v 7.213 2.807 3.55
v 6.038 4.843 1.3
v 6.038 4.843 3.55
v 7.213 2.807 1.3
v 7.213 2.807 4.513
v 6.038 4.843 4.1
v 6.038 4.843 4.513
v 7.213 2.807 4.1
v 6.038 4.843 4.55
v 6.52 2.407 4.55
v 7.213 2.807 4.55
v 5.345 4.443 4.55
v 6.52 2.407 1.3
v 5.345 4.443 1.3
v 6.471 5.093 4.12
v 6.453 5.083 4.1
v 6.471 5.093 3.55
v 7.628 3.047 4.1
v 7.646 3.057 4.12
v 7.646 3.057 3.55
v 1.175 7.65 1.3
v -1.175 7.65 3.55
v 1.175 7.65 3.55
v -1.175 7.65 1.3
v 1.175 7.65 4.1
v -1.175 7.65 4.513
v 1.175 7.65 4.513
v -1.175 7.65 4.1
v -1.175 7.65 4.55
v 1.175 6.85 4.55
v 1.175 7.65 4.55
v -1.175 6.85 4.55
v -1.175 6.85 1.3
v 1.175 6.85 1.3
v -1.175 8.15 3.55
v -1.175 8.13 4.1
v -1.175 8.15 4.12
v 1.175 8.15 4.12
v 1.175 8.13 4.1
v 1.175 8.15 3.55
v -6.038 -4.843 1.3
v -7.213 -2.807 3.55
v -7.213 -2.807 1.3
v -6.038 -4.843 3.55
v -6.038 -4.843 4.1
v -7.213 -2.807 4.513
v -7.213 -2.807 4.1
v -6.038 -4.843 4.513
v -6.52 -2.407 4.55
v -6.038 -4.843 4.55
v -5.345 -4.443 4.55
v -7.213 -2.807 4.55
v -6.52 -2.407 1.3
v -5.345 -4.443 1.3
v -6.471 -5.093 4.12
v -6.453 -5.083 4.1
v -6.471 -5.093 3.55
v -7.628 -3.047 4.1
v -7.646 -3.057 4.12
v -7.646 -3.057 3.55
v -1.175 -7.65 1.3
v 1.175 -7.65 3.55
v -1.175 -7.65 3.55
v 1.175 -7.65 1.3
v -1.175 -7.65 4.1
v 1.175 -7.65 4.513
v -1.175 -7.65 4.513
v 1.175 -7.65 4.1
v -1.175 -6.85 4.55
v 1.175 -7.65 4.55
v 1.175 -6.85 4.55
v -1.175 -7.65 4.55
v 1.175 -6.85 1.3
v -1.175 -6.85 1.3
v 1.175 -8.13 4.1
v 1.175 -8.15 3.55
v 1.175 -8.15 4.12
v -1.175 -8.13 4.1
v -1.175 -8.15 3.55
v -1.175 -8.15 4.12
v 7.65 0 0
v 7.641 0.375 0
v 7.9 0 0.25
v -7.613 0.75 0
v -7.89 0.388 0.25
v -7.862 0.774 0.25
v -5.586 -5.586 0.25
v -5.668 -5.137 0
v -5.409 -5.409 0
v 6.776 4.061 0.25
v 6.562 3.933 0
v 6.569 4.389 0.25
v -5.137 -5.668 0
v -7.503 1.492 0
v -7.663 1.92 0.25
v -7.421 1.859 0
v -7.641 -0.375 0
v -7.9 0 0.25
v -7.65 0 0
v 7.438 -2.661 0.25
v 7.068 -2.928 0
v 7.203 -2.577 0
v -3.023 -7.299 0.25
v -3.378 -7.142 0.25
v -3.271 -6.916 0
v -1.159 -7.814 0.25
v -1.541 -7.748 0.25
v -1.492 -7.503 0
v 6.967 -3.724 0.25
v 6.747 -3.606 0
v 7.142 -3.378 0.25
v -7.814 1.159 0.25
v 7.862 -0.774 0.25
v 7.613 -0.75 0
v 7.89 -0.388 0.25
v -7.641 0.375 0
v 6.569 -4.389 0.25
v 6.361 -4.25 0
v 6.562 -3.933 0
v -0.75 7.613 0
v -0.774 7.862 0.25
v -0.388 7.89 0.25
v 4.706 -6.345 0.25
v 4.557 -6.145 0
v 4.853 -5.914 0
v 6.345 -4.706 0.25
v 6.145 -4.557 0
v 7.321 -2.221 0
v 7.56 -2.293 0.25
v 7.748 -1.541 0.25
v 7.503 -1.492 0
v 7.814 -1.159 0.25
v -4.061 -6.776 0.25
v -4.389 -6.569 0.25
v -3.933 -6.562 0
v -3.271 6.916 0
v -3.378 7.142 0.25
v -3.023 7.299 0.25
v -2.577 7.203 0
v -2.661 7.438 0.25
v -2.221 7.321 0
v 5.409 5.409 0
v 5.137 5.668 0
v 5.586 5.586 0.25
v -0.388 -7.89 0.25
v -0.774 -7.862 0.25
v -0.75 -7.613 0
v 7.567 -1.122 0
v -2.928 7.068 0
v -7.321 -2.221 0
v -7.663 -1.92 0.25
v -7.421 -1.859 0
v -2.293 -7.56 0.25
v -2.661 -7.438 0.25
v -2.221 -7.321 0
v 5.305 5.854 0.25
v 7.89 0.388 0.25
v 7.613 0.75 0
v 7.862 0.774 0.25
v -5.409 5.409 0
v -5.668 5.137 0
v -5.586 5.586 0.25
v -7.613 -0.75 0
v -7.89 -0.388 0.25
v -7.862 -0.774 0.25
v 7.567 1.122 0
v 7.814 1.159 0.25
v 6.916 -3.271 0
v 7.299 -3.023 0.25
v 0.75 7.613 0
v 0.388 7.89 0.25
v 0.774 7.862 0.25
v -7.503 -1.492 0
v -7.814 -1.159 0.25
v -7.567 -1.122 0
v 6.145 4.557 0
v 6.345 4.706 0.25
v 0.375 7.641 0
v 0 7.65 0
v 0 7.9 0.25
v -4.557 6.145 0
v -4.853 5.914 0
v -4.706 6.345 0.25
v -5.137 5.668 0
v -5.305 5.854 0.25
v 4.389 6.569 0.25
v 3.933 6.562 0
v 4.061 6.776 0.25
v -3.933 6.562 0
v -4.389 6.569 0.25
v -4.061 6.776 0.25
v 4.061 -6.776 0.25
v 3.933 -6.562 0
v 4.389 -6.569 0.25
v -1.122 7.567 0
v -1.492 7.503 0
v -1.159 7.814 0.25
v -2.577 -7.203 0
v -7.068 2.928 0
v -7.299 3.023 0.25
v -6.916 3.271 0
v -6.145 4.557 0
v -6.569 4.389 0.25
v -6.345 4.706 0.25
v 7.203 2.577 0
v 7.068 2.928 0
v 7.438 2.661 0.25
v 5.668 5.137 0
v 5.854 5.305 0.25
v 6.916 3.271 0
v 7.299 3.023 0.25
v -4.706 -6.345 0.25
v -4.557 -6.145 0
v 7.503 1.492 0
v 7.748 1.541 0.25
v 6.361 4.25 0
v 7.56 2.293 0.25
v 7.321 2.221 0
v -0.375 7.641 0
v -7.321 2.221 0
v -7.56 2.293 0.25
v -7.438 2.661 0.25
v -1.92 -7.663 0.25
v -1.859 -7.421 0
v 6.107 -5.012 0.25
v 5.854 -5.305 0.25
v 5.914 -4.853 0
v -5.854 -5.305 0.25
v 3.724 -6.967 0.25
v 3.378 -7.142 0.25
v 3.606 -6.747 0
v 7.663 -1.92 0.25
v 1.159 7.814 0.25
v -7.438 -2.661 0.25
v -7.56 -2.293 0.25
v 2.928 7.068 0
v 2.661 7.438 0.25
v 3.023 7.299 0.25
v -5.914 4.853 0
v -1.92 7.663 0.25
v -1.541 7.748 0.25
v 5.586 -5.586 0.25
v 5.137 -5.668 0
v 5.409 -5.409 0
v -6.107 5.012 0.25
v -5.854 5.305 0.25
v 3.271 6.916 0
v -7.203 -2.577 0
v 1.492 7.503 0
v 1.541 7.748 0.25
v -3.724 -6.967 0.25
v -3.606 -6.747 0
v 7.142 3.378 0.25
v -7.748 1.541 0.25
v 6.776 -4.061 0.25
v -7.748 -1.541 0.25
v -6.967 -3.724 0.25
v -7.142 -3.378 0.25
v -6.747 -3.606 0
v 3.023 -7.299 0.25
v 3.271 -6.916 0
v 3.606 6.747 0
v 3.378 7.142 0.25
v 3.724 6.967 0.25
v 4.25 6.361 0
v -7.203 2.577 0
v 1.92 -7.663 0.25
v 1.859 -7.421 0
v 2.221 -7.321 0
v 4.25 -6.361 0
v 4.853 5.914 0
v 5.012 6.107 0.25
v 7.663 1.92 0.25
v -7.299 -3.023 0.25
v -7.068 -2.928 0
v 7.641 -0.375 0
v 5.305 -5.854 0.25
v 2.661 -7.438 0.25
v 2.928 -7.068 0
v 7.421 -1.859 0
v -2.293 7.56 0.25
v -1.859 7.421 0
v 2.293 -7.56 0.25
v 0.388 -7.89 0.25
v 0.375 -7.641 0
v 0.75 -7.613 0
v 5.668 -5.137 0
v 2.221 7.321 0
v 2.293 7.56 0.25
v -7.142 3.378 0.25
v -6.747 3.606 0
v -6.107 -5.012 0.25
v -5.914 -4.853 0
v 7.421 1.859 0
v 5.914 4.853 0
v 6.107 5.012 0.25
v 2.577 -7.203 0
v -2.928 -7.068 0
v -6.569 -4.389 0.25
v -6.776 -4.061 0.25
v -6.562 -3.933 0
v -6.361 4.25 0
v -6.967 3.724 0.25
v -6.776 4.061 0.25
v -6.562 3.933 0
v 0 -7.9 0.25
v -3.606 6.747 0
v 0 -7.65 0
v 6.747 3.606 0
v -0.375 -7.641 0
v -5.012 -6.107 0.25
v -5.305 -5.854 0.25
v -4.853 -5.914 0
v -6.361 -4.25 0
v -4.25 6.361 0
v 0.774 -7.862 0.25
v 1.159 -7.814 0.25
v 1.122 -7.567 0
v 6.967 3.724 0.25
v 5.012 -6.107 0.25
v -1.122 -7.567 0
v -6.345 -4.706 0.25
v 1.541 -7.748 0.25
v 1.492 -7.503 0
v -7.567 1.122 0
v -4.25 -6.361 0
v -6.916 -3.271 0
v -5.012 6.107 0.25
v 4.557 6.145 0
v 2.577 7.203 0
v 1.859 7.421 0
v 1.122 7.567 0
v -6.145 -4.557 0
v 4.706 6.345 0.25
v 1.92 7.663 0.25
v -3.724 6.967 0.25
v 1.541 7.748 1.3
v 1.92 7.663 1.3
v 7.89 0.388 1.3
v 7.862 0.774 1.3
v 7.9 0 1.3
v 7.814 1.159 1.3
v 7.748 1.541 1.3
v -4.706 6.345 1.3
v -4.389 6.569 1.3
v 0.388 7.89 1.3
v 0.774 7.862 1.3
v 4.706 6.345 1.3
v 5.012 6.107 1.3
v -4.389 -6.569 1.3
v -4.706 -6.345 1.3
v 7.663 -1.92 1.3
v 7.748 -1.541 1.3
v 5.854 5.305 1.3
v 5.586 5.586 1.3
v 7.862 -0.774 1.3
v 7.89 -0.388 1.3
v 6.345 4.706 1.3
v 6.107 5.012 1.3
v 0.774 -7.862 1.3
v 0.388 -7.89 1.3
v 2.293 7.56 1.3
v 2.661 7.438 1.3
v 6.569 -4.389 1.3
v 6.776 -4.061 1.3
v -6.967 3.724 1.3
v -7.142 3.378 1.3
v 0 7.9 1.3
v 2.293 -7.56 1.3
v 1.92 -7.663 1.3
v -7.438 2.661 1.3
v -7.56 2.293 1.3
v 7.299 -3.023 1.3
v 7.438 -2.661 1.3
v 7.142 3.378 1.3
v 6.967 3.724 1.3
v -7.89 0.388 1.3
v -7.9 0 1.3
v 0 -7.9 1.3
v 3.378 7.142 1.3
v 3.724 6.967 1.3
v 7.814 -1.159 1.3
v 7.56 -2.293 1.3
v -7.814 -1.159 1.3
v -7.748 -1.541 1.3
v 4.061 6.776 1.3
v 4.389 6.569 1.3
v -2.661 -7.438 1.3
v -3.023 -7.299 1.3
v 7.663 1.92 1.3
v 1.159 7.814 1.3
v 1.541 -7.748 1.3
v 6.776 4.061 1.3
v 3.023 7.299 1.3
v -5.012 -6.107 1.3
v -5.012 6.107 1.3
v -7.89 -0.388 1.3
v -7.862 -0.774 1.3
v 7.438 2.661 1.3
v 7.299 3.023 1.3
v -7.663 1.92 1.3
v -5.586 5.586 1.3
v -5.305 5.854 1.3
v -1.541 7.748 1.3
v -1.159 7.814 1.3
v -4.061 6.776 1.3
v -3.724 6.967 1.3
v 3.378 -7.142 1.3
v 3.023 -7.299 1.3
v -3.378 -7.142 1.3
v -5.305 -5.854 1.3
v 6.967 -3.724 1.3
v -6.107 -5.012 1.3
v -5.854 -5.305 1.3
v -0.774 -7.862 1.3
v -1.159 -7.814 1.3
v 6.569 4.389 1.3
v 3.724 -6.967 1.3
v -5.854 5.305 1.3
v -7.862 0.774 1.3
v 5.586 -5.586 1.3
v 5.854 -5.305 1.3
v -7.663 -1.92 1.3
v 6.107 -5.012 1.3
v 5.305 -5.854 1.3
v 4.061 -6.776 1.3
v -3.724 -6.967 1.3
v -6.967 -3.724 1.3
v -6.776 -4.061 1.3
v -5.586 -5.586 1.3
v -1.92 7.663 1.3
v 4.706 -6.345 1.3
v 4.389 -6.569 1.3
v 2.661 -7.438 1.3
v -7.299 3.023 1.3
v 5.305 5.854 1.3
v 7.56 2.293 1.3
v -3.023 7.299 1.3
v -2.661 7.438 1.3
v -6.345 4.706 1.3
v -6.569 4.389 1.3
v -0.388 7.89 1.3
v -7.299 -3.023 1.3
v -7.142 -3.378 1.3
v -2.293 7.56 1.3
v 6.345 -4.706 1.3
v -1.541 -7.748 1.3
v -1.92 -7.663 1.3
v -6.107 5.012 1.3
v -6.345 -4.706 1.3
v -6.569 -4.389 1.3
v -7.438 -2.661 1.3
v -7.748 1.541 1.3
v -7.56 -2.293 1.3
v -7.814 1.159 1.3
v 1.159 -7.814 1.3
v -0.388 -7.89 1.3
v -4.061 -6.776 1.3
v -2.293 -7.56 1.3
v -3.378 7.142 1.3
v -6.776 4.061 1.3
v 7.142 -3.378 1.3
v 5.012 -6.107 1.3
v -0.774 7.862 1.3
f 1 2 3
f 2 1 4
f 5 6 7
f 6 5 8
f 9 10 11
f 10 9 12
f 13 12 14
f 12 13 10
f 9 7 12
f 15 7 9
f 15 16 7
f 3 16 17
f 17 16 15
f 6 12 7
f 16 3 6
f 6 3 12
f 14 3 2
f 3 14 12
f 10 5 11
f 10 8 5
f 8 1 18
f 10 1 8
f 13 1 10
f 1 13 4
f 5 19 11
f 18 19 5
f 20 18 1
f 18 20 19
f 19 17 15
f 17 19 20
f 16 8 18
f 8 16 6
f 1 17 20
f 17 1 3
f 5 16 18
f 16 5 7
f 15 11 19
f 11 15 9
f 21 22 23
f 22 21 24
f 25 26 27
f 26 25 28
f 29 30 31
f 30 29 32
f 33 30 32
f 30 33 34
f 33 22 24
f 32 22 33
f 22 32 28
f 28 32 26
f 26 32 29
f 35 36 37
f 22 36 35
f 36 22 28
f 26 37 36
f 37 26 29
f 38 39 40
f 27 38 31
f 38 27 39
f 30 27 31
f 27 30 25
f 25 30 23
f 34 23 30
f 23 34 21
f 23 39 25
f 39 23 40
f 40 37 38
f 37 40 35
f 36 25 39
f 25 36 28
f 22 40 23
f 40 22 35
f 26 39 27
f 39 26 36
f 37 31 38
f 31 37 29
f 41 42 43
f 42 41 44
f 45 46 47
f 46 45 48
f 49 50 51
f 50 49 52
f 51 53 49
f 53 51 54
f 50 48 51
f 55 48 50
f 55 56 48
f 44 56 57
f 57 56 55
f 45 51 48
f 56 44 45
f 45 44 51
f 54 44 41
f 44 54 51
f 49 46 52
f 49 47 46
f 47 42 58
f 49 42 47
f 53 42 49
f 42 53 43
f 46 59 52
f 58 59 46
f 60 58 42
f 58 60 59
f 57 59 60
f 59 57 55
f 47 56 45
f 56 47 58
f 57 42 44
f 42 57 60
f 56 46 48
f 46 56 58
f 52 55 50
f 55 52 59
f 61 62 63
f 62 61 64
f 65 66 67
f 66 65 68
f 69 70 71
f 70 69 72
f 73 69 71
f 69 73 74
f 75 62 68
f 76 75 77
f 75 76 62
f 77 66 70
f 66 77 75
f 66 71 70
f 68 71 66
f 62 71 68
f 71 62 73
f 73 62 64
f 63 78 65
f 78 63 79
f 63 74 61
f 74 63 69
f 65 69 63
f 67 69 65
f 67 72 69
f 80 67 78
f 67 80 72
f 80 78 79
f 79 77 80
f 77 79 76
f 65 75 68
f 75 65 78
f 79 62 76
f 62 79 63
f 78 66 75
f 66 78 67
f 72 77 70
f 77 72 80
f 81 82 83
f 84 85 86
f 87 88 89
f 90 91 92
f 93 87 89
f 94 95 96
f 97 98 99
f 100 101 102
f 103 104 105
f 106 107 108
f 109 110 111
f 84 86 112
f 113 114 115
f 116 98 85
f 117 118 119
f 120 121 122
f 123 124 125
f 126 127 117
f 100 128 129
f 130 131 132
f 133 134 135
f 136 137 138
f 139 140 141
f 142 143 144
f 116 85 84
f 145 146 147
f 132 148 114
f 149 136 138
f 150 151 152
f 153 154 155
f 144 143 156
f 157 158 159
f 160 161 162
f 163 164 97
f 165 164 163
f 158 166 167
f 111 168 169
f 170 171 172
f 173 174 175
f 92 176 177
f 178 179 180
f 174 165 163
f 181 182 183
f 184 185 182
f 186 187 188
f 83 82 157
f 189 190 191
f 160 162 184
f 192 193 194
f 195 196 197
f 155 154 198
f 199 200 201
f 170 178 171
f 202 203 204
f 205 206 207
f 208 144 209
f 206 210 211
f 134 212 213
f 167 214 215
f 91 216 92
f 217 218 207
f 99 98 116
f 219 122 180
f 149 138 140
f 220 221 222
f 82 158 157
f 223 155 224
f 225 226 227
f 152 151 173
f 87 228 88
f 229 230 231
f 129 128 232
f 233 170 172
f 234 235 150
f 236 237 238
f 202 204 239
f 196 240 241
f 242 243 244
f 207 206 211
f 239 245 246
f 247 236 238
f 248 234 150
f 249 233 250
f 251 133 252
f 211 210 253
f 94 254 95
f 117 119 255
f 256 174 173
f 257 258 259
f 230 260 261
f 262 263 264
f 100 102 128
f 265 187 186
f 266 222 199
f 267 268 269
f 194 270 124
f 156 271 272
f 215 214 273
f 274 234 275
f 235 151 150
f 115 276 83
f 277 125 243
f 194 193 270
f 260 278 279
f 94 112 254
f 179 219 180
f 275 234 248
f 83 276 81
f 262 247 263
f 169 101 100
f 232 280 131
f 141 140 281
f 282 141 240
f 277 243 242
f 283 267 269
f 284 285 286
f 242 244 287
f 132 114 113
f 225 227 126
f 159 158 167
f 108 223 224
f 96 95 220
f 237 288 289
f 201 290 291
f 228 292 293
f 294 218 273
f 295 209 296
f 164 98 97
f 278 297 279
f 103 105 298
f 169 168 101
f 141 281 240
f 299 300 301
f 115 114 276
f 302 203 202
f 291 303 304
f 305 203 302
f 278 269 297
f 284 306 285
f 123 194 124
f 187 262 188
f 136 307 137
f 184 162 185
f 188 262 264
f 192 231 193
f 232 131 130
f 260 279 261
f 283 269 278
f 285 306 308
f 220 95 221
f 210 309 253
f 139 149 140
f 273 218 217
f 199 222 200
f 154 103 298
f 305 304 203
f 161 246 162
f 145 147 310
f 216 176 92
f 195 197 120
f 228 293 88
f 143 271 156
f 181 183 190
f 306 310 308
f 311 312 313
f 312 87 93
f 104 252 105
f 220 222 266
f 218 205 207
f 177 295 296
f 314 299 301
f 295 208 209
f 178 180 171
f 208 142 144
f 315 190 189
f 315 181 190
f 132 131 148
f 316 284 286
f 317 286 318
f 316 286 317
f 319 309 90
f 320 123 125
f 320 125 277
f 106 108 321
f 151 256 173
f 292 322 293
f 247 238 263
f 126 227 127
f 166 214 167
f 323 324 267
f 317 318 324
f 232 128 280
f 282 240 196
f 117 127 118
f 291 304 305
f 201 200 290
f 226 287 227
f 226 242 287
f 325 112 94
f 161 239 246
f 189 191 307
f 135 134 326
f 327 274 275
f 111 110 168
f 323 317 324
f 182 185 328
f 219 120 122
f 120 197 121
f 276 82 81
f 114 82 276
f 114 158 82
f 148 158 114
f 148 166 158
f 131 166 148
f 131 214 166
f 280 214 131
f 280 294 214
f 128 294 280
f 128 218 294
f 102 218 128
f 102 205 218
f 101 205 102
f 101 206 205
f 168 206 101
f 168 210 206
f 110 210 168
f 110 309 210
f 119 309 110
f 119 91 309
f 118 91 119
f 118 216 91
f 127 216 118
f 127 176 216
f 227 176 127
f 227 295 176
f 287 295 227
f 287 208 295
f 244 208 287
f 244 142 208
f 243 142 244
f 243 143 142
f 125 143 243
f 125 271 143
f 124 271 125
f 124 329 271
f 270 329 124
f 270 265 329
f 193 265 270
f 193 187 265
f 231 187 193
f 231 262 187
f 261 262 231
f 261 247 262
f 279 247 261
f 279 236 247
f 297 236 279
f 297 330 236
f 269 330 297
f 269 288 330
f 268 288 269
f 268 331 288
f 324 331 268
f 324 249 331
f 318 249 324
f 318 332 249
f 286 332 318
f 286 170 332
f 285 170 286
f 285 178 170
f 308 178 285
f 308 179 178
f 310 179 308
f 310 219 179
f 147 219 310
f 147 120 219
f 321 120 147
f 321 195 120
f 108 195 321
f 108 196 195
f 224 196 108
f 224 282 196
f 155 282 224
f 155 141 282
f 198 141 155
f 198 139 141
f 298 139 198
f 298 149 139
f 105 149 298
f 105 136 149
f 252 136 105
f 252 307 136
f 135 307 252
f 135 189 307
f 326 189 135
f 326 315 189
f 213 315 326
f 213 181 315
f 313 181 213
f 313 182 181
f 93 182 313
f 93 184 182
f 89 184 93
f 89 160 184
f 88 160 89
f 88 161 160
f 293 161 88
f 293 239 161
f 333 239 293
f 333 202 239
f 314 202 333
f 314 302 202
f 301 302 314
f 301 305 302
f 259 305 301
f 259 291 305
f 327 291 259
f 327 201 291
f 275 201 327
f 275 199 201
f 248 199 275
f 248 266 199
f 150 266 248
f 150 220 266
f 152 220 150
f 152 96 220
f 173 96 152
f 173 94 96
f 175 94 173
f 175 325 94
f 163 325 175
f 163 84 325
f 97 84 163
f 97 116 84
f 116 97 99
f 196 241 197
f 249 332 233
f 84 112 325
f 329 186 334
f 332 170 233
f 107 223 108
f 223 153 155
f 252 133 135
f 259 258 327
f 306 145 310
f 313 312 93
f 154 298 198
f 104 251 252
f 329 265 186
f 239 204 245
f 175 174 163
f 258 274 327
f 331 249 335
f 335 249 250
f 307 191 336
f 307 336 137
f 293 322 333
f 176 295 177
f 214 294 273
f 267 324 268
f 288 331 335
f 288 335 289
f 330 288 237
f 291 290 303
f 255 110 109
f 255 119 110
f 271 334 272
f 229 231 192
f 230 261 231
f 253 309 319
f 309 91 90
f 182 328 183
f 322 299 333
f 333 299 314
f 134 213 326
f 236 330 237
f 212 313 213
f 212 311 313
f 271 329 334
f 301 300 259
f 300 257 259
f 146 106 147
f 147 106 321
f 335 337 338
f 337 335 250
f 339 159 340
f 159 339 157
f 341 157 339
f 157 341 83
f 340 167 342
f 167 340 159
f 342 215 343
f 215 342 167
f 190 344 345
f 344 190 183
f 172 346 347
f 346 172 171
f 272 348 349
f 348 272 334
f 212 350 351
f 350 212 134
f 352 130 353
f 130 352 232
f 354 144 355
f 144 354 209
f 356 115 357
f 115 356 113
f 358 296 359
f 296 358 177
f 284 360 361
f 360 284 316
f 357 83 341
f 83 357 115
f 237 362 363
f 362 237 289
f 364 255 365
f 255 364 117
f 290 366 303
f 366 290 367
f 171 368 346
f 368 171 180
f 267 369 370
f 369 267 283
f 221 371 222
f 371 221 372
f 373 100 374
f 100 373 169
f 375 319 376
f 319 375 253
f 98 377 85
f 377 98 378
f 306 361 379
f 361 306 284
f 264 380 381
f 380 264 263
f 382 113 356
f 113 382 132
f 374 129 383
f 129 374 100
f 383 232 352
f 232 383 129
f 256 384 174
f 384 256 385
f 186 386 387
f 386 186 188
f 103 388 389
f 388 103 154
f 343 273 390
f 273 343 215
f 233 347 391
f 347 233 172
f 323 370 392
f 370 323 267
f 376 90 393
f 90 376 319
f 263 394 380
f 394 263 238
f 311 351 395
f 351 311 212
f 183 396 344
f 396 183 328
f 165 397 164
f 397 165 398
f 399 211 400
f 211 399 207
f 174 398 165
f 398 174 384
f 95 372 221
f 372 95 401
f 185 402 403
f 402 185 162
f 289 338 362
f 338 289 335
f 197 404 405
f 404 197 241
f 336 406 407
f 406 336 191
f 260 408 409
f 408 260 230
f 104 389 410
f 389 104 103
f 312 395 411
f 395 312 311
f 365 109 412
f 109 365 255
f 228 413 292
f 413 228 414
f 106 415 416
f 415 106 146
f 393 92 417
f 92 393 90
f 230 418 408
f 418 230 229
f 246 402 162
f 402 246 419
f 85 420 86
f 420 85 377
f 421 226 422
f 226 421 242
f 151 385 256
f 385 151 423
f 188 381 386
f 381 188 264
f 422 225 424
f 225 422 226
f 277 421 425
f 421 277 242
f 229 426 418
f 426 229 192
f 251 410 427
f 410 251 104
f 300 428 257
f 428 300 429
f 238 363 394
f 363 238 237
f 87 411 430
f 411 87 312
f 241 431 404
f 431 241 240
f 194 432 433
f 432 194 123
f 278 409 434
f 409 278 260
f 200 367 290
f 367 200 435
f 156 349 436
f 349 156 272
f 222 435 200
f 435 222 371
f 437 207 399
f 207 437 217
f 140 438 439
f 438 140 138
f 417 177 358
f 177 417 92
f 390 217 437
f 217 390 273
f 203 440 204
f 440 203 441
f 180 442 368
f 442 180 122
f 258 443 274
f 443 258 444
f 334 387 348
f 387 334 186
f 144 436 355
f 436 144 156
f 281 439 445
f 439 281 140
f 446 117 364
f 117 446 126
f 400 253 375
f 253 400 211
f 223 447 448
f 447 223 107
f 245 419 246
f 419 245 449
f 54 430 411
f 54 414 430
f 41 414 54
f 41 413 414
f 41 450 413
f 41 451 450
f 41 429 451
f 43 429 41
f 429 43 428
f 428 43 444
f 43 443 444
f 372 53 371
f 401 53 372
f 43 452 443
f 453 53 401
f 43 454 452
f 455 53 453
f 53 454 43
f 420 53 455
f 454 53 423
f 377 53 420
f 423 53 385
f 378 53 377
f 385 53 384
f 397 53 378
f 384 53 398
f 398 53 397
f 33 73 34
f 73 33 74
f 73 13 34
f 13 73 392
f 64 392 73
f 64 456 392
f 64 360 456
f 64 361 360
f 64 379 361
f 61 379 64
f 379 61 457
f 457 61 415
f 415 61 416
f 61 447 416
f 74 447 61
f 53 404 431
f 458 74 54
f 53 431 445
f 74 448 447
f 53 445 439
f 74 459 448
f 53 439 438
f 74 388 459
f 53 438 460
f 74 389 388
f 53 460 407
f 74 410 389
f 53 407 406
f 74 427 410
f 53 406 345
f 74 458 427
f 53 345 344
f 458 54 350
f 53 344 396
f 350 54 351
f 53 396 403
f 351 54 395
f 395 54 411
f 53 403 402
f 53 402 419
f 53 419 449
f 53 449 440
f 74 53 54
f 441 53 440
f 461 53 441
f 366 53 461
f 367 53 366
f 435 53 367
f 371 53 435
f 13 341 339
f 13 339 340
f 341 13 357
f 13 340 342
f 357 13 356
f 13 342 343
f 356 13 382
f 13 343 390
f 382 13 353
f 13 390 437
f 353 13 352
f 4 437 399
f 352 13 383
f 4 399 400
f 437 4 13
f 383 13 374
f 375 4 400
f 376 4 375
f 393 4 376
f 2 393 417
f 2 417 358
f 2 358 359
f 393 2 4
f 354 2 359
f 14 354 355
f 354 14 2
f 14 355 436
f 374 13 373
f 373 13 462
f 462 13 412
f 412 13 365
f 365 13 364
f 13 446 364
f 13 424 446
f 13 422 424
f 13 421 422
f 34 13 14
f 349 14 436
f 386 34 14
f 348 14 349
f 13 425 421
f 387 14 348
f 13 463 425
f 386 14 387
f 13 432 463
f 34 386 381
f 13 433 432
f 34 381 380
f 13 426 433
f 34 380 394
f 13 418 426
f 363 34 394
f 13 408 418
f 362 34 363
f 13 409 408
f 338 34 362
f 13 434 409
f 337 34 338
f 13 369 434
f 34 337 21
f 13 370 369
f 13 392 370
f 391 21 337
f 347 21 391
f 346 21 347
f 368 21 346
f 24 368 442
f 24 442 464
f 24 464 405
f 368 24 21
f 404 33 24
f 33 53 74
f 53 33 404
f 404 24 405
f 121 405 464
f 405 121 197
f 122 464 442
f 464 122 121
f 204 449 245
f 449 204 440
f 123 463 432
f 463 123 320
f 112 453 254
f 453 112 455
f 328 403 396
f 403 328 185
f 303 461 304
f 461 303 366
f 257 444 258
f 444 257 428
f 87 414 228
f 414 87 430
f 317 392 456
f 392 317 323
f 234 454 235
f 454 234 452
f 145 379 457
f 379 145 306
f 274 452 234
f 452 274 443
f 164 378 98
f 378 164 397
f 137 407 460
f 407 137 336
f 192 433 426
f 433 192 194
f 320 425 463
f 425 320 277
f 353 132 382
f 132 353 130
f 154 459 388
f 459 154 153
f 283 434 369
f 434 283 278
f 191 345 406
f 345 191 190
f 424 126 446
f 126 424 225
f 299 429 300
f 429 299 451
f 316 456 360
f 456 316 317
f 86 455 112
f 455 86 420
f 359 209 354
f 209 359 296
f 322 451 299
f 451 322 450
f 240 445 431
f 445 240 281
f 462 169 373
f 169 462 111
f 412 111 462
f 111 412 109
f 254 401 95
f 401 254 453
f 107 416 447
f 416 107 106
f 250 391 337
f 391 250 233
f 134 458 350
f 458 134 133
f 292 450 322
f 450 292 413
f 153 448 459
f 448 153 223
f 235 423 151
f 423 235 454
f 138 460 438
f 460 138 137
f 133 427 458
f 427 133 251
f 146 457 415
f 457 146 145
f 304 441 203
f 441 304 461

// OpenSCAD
$fn=128;

// V120 positive-retention cap for the M8 steel-spindle knob.
// Four flexible snap tabs retain the cap mechanically. The cap remains
// non-structural: screw torque and axial load are carried by the hex pocket.

cap_d = 15.80;
cap_h = 1.30;
chamfer = 0.25;

// Four tabs sit beside flats of the captured M8 hex head. The distal barb
// flexes inward while being inserted and expands into matching pockets in
// eurobox_v120_knob.scad.
tab_angles = [30, 90, 210, 270];
tab_r0 = 6.85;
tab_t = 0.80;
tab_w = 2.35;
tab_z0 = cap_h - 0.25;
tab_len = 3.50;
hook_out = 0.50;
hook_body_h = 0.55;
hook_ramp_h = 0.45;

module snap_tab(a) {
    rotate([0,0,a])
        translate([tab_r0,-tab_w/2,tab_z0])
            union() {
                // Flexible axial cantilever.
                cube([tab_t,tab_w,tab_len]);

                // Positive barb: square withdrawal shoulder on the cap side,
                // then a tapered lead-in toward the insertion tip.
                translate([tab_t-0.01,0,tab_len-hook_body_h-hook_ramp_h])
                    cube([hook_out+0.01,tab_w,hook_body_h]);

                hull() {
                    translate([tab_t+hook_out-0.02,0,tab_len-hook_ramp_h])
                        cube([0.02,tab_w,0.02]);
                    translate([tab_t-0.02,0,tab_len-0.02])
                        cube([0.02,tab_w,0.02]);
                }
            }
}

union() {
    cylinder(d1=cap_d-2*chamfer,d2=cap_d,h=chamfer);
    translate([0,0,chamfer]) cylinder(d=cap_d,h=cap_h-chamfer);

    for(a=tab_angles)
        snap_tab(a);
}
